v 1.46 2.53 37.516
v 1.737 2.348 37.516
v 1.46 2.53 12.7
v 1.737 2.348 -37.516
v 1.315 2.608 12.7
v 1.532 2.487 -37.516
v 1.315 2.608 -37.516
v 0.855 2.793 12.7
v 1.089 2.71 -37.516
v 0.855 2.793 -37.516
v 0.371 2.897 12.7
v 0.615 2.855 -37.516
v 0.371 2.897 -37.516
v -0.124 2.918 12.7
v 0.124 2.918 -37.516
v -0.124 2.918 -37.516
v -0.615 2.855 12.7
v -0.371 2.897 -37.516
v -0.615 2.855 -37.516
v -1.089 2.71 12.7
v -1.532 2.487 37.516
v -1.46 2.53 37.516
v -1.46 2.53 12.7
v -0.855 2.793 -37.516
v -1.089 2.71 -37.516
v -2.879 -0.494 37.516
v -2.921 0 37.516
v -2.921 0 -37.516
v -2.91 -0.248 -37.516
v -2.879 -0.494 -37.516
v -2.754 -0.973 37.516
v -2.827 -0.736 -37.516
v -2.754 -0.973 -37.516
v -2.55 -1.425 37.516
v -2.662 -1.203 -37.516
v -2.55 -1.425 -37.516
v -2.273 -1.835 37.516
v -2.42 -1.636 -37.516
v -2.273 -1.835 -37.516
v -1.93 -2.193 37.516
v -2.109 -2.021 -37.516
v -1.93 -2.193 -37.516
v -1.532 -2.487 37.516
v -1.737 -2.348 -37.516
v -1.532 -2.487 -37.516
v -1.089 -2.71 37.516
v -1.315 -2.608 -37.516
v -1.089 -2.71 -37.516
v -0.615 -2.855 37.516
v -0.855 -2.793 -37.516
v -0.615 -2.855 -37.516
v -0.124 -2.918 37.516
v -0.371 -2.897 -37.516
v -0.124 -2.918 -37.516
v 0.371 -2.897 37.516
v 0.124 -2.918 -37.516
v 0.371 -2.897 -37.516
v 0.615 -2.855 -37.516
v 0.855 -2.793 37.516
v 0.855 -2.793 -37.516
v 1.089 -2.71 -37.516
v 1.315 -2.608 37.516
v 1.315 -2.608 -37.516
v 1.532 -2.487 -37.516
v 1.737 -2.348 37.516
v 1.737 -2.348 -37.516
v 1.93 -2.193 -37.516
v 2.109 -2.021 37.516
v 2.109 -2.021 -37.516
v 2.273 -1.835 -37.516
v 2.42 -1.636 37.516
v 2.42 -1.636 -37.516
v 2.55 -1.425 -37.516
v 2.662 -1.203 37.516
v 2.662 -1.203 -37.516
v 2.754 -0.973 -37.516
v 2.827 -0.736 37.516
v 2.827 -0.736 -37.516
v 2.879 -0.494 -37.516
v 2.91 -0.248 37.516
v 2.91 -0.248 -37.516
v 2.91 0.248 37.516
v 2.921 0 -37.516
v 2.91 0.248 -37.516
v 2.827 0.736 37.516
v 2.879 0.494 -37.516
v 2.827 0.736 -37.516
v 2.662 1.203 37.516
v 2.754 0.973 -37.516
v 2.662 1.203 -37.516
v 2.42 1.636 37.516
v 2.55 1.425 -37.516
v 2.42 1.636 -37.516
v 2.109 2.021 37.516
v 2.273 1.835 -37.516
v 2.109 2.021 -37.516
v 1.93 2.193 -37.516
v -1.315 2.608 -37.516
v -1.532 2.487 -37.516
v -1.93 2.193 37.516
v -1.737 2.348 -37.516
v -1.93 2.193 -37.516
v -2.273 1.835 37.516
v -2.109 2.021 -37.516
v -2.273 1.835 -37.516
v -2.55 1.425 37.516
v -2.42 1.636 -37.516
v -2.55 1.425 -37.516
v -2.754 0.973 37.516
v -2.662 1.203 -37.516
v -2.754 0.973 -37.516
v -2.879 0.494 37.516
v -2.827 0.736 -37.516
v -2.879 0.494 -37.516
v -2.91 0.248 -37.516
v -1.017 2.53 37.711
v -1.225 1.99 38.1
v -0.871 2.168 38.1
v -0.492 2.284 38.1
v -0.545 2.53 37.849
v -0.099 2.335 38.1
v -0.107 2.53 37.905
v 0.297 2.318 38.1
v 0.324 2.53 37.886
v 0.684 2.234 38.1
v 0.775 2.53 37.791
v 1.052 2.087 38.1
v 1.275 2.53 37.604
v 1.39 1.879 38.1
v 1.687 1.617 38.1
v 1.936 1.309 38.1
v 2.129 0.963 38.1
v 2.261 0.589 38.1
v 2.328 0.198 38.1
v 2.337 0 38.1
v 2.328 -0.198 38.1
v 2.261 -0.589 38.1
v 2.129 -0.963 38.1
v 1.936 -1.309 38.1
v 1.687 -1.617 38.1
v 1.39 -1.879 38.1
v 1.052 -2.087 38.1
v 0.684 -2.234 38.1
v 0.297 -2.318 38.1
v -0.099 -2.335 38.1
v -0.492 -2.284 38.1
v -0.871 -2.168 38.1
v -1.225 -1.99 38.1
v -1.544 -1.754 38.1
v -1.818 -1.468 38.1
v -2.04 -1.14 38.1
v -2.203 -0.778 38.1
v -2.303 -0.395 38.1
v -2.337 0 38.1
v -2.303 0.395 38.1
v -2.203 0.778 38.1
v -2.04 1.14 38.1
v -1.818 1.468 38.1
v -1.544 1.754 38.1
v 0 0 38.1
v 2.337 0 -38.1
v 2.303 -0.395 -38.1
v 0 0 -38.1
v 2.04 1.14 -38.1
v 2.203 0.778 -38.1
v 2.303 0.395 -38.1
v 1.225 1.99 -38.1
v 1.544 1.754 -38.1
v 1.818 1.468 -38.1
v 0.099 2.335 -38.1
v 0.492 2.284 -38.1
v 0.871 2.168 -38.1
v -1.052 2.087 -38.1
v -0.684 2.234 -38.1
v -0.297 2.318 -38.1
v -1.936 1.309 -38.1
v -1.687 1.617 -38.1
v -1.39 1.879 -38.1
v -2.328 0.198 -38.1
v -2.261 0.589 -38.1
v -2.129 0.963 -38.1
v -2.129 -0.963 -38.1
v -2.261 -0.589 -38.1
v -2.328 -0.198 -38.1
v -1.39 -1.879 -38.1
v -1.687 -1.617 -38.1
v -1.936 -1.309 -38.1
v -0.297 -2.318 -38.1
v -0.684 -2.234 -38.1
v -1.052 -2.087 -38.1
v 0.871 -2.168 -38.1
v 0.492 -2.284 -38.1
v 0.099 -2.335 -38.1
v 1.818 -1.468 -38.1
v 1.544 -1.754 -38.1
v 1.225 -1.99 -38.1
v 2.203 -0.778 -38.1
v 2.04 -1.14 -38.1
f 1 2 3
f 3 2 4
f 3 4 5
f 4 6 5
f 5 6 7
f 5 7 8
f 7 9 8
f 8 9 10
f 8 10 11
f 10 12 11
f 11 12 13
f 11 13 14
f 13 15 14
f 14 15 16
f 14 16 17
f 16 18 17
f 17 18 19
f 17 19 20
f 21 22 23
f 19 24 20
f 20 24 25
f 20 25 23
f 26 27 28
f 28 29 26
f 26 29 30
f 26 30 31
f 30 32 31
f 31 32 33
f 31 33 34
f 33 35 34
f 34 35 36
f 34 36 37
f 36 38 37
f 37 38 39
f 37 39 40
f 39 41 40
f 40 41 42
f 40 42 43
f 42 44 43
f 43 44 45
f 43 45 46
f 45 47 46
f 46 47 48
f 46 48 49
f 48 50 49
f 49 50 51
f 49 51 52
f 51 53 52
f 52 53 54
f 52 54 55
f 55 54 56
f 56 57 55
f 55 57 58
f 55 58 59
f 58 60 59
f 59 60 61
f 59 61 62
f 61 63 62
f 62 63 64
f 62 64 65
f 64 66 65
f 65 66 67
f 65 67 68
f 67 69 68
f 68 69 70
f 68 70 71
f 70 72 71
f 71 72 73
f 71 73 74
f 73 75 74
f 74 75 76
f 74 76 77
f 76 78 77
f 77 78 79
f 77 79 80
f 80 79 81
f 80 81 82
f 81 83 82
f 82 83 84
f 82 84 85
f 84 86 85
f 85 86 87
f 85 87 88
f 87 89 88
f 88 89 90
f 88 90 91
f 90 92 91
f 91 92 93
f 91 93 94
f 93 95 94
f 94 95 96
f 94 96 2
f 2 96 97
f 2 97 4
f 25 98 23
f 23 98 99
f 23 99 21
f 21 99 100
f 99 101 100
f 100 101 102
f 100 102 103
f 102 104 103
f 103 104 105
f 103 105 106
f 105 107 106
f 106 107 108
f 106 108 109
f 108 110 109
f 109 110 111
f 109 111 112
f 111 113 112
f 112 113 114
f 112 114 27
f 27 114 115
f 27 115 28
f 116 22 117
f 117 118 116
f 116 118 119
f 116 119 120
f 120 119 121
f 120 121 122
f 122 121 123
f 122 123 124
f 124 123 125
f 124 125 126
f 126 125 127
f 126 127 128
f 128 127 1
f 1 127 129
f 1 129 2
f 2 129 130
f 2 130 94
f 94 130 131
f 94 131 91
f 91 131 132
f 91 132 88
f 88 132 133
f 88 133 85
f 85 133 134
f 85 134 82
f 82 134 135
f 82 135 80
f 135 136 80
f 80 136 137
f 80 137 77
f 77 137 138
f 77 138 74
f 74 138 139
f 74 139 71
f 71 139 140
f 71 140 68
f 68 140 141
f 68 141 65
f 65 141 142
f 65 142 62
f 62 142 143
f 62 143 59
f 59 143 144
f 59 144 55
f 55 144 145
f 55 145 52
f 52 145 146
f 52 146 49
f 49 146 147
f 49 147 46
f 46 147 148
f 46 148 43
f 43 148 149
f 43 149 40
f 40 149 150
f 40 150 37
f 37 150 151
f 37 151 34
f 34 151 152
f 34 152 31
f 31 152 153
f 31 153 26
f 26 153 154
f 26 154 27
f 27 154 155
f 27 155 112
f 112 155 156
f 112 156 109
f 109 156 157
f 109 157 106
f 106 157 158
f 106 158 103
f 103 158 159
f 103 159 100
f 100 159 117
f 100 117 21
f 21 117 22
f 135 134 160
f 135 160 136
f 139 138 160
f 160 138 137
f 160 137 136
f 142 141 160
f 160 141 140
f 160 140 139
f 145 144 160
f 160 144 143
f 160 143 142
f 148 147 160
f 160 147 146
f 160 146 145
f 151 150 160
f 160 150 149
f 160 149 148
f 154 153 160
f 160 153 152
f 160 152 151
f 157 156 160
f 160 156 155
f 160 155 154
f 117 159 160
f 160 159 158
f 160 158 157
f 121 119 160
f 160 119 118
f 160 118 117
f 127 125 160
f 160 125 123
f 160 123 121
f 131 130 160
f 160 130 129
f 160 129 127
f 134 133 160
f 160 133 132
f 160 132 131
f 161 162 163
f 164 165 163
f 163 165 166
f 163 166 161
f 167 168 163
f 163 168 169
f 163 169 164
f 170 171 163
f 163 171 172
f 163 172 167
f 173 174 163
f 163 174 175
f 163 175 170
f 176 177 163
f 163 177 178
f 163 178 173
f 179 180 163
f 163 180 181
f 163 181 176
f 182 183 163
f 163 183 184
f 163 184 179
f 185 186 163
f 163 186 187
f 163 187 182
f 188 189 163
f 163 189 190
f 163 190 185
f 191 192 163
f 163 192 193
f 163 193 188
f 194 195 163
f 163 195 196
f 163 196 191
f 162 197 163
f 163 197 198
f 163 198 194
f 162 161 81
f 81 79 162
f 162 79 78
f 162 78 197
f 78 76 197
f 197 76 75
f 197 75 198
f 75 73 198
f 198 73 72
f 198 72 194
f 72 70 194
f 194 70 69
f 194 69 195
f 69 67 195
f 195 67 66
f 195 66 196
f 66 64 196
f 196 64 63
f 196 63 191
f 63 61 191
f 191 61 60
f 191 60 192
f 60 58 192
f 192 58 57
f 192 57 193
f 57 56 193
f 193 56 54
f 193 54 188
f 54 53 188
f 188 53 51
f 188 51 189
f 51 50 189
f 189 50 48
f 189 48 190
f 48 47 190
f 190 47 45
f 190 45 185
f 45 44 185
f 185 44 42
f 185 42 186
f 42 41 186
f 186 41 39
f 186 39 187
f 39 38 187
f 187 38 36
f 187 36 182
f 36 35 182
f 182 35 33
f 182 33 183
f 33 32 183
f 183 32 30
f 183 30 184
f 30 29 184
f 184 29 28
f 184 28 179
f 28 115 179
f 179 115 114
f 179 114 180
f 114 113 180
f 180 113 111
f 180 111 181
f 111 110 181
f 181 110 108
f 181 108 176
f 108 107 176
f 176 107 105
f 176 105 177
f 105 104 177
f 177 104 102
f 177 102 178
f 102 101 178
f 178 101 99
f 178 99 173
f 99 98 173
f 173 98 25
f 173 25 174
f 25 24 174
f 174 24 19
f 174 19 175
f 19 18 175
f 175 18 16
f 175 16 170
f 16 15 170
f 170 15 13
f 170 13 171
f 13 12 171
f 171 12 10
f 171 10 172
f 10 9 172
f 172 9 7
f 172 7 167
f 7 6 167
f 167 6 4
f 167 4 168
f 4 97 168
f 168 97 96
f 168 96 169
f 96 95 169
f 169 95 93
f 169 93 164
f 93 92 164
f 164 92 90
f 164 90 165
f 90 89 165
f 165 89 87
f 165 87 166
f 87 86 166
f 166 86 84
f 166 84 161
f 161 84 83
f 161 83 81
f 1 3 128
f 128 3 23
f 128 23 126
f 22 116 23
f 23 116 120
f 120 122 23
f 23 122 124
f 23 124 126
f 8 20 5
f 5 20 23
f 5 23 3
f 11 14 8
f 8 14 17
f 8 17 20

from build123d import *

# Parameters (mm, degrees)
SKETCH1_R      = 2.921
EXTRUDE1_DEPTH = 38.1
CHAMFER1_SIZE  = 0.5842
EXTRUDE7_DEPTH = 26.4


with BuildPart() as part:
    # Sketch1 → Extrude1 (new body, symmetric)
    with BuildSketch(Plane.XY):
        Circle(SKETCH1_R)
    extrude(amount=EXTRUDE1_DEPTH, both=True)

    # Chamfer1
    chamfer1_edges = [part.edges().sort_by_distance(p)[0] for p in [
        (-2.921, 0, -38.1),
        (-2.921, 0, 38.1),
    ]]
    chamfer(chamfer1_edges, length=CHAMFER1_SIZE)

    # Sketch13 → Extrude7 (cut, through all)
    with BuildSketch(Plane.XY.offset(12.7)):
        with BuildLine():
            Line((-1.4605, 2.529660204), (1.4605, 2.529660204))
            ThreePointArc((1.4605, 2.529660204), (0, 2.921), (-1.4605, 2.529660204))
        make_face()
    extrude(amount=EXTRUDE7_DEPTH, mode=Mode.SUBTRACT)


solid = part.part
